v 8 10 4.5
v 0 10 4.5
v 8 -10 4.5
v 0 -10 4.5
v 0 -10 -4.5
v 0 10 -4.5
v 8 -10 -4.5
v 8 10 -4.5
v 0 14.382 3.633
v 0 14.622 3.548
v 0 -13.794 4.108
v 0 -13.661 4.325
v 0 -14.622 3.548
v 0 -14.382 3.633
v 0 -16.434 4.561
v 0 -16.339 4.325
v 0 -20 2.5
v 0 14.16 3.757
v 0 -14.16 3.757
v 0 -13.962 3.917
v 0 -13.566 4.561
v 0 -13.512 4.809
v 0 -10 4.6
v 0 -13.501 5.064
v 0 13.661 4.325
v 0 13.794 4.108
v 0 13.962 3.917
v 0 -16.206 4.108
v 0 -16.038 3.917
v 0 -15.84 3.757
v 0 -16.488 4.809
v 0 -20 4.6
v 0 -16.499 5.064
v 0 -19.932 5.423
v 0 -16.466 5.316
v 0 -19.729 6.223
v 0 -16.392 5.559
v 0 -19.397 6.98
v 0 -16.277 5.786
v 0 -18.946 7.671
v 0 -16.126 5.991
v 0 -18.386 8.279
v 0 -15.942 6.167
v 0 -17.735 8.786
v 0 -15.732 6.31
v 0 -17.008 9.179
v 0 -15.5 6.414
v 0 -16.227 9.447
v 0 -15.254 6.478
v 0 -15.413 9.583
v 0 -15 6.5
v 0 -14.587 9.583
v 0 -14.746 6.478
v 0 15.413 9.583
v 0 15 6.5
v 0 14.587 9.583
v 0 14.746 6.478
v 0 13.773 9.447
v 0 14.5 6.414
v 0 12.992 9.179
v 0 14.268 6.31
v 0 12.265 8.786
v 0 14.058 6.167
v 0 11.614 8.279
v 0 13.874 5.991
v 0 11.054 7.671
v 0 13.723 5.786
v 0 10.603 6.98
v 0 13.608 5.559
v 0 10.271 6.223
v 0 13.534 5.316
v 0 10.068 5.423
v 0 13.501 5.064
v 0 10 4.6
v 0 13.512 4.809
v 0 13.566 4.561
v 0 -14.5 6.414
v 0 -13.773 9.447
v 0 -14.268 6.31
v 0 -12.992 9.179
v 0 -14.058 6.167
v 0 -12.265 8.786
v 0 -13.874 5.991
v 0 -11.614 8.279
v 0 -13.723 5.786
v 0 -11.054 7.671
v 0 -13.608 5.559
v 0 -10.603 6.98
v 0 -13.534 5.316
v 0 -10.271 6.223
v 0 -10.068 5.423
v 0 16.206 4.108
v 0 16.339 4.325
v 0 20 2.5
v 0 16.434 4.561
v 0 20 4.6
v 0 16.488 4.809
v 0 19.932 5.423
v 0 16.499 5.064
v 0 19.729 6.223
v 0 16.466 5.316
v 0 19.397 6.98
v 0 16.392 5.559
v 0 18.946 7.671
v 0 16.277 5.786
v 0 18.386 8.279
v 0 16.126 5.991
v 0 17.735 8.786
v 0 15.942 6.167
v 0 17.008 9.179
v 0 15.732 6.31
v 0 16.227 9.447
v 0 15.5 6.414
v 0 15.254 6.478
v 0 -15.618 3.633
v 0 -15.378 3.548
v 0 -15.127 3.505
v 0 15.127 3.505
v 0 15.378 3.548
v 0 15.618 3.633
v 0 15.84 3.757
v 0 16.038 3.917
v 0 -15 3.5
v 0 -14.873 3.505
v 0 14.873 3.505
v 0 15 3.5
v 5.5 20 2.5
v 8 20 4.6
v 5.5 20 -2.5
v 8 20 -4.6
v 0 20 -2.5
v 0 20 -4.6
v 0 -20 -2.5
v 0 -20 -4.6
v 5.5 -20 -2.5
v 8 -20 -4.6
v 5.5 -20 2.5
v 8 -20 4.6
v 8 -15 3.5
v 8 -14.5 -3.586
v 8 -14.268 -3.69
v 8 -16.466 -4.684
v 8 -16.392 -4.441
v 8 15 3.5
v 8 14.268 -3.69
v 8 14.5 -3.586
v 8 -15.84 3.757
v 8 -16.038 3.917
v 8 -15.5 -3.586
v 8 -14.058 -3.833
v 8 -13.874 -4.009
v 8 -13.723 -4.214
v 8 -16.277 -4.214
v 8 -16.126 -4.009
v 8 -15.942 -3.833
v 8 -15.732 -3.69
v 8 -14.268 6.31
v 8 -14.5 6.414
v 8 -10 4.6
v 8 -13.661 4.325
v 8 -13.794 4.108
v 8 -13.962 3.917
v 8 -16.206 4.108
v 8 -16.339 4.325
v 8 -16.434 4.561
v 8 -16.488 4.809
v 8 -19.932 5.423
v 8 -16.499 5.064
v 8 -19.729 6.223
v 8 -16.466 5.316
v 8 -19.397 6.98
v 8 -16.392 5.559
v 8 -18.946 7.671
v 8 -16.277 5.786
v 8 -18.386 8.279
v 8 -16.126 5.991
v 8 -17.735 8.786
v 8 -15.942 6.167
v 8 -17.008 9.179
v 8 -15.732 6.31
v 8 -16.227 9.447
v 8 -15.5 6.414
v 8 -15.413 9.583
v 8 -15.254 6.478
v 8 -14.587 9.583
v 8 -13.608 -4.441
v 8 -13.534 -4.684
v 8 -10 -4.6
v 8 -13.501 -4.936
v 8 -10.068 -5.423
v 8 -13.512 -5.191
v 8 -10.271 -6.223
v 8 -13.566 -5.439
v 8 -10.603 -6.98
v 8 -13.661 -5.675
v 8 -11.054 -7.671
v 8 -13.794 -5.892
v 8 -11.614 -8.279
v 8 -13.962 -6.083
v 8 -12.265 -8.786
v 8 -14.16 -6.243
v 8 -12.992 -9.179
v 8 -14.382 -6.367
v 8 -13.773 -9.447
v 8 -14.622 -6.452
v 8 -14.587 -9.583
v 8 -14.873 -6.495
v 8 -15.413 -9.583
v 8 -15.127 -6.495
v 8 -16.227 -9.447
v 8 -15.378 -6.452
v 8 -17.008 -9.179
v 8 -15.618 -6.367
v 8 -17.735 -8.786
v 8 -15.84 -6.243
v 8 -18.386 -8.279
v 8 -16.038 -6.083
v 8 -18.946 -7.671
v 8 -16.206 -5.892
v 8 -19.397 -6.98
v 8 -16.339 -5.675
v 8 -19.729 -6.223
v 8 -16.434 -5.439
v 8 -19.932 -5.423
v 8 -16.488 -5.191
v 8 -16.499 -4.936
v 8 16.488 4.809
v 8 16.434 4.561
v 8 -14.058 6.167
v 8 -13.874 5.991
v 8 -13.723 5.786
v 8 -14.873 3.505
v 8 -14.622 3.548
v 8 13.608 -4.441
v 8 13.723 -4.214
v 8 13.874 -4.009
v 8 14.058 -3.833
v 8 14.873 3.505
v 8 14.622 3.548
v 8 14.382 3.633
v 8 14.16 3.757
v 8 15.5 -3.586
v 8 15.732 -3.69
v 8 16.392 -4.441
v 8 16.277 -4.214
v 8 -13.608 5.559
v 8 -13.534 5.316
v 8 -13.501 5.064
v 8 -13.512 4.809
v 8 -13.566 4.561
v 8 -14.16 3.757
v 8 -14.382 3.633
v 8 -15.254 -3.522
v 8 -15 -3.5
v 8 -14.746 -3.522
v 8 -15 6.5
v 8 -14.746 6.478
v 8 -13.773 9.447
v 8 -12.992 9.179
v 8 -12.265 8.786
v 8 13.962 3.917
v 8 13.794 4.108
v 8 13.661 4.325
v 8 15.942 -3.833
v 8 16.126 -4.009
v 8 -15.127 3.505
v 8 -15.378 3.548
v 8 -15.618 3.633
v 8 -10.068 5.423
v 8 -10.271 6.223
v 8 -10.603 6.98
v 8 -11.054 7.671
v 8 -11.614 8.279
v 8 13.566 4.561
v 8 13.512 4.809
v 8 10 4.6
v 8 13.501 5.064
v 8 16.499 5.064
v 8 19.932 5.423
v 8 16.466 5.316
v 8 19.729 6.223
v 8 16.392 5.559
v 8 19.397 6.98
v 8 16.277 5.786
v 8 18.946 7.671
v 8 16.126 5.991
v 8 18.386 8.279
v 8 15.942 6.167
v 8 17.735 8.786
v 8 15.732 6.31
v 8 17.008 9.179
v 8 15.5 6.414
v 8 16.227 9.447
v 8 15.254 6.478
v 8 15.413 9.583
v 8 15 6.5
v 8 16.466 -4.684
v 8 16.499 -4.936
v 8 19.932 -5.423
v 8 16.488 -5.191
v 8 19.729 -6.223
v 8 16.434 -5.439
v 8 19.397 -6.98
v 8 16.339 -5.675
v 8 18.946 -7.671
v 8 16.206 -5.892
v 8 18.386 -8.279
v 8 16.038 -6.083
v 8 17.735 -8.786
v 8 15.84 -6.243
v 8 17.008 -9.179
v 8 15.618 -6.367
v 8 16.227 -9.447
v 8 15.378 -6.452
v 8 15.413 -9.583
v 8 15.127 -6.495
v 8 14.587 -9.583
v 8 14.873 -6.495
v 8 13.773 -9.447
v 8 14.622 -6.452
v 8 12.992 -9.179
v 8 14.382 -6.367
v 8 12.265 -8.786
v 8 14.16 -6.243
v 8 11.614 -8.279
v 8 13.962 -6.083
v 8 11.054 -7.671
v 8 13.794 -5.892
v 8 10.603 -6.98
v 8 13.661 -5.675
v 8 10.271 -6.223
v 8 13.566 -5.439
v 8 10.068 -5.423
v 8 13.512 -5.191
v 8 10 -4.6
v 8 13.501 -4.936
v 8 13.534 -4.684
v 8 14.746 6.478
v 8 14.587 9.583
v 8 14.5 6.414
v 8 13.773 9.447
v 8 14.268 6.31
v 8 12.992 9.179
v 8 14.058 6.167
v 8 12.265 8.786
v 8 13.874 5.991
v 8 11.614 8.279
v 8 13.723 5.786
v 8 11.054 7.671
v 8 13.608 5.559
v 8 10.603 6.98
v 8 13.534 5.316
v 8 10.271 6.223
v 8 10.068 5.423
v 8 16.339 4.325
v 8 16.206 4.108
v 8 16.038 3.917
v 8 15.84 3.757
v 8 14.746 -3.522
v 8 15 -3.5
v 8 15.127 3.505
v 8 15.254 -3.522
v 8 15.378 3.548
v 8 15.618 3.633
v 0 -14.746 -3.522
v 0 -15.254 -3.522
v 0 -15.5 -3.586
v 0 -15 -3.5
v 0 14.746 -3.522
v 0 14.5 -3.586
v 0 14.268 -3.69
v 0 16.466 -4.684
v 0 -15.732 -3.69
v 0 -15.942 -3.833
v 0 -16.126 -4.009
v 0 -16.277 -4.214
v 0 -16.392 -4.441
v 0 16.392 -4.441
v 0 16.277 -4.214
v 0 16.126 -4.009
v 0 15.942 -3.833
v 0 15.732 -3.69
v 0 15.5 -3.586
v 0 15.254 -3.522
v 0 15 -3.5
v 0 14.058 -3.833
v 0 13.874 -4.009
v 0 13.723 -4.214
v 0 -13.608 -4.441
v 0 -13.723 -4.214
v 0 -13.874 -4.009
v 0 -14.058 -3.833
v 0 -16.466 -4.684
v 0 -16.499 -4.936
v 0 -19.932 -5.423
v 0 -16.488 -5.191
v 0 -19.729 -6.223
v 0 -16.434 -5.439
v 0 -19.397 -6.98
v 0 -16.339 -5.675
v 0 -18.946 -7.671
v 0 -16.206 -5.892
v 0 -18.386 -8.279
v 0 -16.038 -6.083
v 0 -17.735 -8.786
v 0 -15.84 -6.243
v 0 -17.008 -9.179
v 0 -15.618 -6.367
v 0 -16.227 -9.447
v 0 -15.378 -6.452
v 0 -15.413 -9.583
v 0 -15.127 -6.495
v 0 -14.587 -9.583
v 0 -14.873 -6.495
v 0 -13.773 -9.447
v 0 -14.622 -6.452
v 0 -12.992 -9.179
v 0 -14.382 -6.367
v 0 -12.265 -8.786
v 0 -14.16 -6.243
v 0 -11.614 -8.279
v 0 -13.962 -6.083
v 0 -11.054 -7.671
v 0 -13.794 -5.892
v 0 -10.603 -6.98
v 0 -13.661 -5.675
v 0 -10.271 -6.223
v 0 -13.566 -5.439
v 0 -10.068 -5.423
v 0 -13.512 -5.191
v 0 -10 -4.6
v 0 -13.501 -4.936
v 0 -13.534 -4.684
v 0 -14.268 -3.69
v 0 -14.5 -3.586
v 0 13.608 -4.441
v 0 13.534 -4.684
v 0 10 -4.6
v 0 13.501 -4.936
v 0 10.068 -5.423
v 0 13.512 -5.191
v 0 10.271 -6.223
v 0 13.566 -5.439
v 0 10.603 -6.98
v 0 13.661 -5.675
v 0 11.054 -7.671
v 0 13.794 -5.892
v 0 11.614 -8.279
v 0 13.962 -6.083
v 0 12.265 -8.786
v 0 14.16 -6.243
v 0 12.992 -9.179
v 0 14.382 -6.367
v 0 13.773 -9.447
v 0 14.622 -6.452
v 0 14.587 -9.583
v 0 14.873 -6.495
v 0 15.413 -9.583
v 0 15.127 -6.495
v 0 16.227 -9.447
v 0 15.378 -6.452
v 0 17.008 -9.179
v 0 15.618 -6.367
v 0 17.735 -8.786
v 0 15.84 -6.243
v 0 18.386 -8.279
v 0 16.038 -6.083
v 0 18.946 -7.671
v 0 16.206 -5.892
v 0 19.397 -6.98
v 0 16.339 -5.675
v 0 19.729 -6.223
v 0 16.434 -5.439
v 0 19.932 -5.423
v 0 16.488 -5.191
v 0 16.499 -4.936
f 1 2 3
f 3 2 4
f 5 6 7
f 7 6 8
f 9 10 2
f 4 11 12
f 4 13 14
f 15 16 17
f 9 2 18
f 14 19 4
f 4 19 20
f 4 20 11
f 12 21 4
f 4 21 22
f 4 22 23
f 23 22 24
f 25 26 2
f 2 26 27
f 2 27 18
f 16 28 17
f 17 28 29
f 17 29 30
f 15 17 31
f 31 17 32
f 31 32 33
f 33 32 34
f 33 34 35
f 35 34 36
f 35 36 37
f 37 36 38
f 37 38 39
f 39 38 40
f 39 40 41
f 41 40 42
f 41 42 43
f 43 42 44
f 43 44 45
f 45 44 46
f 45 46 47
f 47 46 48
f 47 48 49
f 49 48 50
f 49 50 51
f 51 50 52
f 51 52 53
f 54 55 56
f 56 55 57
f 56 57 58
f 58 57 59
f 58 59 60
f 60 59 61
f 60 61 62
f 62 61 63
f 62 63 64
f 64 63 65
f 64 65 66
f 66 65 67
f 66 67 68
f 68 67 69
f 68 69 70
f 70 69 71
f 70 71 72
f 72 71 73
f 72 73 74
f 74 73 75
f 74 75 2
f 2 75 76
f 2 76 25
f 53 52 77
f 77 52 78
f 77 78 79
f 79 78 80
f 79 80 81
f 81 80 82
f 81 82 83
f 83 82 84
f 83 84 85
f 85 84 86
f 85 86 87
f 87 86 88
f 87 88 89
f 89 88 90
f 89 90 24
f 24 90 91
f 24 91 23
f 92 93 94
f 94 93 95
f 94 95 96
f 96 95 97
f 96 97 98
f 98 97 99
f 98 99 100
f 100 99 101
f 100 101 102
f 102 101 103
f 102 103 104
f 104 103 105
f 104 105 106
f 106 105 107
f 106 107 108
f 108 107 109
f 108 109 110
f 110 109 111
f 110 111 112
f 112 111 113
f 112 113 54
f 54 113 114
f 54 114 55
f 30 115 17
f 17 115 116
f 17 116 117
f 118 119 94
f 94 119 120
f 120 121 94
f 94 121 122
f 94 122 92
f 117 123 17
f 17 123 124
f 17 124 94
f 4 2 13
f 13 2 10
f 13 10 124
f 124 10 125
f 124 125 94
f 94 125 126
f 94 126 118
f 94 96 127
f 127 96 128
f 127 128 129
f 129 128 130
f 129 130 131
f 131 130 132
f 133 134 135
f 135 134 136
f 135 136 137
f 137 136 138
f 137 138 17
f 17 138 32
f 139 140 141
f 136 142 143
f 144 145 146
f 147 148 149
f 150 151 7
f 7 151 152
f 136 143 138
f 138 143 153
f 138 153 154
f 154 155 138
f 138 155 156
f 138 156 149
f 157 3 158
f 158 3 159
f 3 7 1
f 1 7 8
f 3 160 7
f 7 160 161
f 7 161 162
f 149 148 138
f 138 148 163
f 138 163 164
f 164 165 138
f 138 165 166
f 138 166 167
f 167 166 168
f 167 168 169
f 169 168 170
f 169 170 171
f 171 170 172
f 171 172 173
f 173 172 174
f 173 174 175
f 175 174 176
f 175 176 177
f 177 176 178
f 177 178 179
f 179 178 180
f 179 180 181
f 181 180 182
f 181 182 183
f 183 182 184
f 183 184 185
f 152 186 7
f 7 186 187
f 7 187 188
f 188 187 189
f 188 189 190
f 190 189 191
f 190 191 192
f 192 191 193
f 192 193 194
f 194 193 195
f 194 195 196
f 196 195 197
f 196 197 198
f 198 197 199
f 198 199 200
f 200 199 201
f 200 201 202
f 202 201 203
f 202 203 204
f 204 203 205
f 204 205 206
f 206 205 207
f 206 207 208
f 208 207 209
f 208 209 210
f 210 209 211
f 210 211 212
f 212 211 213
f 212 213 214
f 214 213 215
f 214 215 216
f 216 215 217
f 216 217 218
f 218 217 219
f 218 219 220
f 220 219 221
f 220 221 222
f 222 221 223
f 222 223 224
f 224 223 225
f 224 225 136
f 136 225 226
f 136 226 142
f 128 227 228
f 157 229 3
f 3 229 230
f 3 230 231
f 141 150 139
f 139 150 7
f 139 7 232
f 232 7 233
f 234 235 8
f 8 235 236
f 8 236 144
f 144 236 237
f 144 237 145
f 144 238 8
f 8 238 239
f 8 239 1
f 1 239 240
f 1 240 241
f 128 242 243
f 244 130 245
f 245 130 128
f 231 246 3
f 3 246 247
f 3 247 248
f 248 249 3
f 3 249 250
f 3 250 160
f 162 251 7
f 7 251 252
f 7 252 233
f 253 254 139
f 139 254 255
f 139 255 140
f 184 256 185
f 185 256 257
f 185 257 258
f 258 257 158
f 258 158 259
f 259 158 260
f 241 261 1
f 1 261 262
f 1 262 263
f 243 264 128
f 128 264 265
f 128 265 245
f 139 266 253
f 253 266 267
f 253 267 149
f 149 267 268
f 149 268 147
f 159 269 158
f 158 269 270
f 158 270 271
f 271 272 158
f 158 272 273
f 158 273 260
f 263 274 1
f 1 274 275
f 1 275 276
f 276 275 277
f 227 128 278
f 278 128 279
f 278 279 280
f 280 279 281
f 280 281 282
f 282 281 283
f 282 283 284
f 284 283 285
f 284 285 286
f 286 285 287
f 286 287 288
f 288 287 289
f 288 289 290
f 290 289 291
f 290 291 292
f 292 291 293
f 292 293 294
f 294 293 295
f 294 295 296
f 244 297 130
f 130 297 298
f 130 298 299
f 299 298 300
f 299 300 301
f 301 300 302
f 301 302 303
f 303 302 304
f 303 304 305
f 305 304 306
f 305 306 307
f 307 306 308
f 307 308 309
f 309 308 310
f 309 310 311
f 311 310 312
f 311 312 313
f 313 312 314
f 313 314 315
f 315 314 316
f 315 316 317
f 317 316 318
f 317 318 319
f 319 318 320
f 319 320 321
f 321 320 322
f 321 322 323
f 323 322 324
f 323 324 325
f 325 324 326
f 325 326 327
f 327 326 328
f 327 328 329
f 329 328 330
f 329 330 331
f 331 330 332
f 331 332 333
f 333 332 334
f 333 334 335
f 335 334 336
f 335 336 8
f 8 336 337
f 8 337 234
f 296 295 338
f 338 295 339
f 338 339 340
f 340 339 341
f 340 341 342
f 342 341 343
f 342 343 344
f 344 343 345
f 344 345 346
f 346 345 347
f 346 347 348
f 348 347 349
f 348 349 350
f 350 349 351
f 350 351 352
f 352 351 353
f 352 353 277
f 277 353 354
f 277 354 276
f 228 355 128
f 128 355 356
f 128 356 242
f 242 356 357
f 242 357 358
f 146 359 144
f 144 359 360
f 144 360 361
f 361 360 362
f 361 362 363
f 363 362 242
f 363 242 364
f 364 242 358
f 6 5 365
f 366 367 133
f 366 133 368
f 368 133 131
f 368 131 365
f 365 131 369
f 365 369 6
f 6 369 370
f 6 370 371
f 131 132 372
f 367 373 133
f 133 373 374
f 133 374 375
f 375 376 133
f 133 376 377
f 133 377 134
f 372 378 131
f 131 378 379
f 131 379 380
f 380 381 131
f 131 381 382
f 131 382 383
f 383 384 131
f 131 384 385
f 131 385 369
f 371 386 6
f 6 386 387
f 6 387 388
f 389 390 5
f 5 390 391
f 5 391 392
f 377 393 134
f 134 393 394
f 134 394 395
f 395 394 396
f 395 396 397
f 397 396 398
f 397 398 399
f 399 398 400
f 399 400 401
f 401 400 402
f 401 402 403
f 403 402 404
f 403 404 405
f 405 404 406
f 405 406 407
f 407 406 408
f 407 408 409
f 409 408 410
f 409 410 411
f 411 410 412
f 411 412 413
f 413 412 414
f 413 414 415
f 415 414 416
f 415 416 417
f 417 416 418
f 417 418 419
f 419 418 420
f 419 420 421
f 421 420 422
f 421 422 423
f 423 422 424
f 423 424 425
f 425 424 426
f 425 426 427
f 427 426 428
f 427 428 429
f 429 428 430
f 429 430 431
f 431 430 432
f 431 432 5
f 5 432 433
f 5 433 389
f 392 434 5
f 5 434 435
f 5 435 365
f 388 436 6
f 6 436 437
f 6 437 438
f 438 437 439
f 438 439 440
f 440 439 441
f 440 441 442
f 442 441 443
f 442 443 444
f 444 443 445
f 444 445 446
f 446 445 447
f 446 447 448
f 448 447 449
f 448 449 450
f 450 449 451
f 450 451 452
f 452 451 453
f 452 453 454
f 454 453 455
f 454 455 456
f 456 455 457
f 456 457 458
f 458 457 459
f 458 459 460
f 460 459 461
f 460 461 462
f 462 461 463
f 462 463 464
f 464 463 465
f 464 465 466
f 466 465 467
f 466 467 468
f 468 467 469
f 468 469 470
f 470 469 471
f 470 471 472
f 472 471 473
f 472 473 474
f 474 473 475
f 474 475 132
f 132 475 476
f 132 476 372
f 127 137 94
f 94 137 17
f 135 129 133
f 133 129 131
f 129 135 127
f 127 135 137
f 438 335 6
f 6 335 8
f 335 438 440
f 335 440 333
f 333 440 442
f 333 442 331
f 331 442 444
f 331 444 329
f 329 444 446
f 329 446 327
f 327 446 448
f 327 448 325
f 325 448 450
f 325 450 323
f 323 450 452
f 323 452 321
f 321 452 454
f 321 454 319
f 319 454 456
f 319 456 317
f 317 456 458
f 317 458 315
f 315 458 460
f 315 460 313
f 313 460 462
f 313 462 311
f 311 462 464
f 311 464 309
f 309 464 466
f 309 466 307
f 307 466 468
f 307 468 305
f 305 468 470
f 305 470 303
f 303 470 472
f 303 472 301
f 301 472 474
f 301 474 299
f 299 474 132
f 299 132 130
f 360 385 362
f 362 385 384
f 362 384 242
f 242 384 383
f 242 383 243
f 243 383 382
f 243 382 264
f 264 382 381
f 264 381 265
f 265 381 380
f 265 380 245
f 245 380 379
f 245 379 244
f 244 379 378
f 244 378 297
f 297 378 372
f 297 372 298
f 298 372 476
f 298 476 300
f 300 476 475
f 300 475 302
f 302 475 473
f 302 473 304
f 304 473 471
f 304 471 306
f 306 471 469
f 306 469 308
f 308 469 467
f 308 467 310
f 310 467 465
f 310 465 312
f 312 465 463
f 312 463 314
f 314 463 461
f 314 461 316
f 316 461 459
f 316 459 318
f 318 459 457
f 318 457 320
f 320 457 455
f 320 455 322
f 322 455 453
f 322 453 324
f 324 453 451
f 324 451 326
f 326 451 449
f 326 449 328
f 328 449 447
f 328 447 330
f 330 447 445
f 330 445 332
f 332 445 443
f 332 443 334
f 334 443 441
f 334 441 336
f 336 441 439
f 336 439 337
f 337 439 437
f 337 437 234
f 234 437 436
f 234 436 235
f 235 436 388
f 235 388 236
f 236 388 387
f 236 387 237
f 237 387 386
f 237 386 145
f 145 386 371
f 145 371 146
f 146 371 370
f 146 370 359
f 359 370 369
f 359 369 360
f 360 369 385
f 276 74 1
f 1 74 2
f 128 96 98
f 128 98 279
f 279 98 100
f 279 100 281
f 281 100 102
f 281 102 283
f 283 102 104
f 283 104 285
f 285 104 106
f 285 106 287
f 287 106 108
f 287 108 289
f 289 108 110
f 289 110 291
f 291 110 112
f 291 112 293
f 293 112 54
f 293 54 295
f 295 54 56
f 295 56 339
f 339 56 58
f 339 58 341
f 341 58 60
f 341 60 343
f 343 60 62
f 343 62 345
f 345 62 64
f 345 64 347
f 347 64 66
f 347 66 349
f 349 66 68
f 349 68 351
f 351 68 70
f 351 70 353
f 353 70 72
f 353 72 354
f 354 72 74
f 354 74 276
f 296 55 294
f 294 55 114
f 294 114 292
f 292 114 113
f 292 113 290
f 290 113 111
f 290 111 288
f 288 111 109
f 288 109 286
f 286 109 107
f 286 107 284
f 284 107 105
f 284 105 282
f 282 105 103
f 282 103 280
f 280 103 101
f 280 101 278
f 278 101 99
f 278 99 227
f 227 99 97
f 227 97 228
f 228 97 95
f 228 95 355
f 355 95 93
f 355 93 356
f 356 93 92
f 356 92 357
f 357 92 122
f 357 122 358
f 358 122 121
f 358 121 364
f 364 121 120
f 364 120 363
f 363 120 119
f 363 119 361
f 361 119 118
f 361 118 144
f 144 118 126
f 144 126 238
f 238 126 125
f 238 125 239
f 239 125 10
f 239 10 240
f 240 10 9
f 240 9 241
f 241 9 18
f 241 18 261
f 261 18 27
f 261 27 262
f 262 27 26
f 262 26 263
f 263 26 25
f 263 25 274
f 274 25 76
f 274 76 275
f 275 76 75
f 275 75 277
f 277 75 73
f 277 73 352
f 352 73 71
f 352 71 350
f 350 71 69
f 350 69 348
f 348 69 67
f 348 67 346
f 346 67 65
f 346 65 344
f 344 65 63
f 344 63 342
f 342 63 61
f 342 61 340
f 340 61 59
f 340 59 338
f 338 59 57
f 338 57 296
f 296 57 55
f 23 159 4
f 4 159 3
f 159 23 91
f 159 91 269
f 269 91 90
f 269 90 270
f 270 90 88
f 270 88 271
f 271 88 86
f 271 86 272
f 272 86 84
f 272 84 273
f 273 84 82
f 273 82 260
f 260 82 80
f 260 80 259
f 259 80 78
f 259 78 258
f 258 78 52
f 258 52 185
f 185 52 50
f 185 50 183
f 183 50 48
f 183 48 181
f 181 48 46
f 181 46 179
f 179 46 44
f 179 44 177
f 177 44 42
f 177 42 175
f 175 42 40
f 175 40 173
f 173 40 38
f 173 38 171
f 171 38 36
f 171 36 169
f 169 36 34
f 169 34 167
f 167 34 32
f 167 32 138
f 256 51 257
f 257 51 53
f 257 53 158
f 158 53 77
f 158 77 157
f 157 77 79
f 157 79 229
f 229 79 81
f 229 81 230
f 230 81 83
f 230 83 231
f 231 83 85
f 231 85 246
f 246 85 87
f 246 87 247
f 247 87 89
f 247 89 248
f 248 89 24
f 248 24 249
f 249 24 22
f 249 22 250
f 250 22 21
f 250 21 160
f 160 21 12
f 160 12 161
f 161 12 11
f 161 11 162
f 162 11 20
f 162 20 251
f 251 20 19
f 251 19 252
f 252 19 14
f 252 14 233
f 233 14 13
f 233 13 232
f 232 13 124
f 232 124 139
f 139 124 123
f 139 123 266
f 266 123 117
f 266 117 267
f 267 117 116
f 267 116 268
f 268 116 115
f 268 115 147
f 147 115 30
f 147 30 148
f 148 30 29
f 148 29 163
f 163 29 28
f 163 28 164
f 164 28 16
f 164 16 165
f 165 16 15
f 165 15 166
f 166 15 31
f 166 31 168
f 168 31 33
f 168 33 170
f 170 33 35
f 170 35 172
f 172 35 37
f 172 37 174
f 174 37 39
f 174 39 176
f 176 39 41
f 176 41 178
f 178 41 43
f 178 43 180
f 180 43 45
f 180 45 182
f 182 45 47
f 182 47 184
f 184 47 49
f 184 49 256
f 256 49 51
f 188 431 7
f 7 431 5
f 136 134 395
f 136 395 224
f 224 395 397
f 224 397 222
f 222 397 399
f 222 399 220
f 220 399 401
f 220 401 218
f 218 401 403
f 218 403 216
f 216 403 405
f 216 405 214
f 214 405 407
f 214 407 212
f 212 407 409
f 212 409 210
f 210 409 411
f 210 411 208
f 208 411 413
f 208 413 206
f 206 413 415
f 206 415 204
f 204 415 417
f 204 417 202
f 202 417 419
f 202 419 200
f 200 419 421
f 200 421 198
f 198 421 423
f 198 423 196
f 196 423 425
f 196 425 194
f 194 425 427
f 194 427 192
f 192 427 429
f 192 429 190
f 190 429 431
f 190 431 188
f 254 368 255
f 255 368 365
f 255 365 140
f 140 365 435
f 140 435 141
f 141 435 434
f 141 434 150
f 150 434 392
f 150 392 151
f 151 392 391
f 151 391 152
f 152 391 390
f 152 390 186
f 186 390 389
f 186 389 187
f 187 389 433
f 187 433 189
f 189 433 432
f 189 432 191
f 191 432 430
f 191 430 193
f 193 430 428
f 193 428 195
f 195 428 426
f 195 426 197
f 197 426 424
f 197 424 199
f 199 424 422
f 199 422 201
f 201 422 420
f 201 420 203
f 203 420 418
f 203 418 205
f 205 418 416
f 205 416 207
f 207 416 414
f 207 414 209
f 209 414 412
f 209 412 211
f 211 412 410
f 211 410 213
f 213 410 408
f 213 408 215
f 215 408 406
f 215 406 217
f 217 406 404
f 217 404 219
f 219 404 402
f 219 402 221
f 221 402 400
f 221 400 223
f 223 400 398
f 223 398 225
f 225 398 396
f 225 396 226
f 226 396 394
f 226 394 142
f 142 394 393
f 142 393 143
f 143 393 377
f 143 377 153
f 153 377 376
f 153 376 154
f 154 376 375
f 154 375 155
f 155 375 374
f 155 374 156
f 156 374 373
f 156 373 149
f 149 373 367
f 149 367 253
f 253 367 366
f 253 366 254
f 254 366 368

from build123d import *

# Parameters (mm, degrees)
ESQUISSE2_W               = 9
ESQUISSE2_H               = 40
BOSS_EXTRU_1_DEPTH        = 8
ESQUISSE3_W               = 5
ESQUISSE3_H               = 40
ENL_V_MAT_EXTRU_1_DEPTH   = 5.5
ESQUISSE4_W               = 8
ESQUISSE4_H               = 10
BOSS_EXTRU_2_DEPTH        = 0.1
BOSS_EXTRU_5_DEPTH        = 8
ESQUISSE14_R              = 1.5
ENL_V_MAT_EXTRU_4_DEPTH   = 24.583044757
SYM_TRIE5_COPY_1_SKETCH_W = 8
SYM_TRIE5_COPY_1_SKETCH_H = 10
SYM_TRIE5_COPY_1_DEPTH    = 0.1
SYM_TRIE5_COPY_2_DEPTH    = 8
SYM_TRIE5_COPY_3_SKETCH_R = 1.5
SYM_TRIE5_COPY_3_DEPTH    = 24.583044757


with BuildPart() as part:
    # Esquisse2 → Boss.-Extru.1 (new body)
    with BuildSketch(Plane(origin=(0, 0, 0), x_dir=(0, 0, -1), z_dir=(1, 0, 0))):
        Rectangle(ESQUISSE2_W, ESQUISSE2_H)
    extrude(amount=BOSS_EXTRU_1_DEPTH)

    # Esquisse3 → Enlèv. mat.-Extru.1 (cut)
    with BuildSketch(Plane.ZY):
        Rectangle(ESQUISSE3_W, ESQUISSE3_H)
    extrude(amount=-ENL_V_MAT_EXTRU_1_DEPTH, mode=Mode.SUBTRACT)

    # Esquisse4 → Boss.-Extru.2 (add)
    with BuildSketch(Plane(origin=(0, 0, -4.5), x_dir=(-1, 0, 0), z_dir=(0, 0, -1))):
        with Locations((-4, 15)):
            Rectangle(ESQUISSE4_W, ESQUISSE4_H)
    boss_extru_2 = extrude(amount=BOSS_EXTRU_2_DEPTH)

    # Esquisse13 → Boss.-Extru.5 (add)
    with BuildSketch(Plane(origin=(0, 0, 0), x_dir=(0, 0, -1), z_dir=(1, 0, 0))):
        with BuildLine():
            Line((4.6, 10), (4.6, 20))
            ThreePointArc((4.6, 20), (9.6, 15), (4.6, 10))
        make_face()
    boss_extru_5 = extrude(amount=BOSS_EXTRU_5_DEPTH)

    # Esquisse14 → Enlèv. mat.-Extru.4 (cut, through all)
    with BuildSketch(Plane.ZY):
        with Locations((-5, 15)):
            Circle(ESQUISSE14_R)
    enl_v_mat_extru_4 = extrude(amount=-ENL_V_MAT_EXTRU_4_DEPTH, mode=Mode.SUBTRACT)

    # Symétrie4: Boss.-Extru.2, Boss.-Extru.5, Enlèv. mat.-Extru.4 across plane
    add(boss_extru_2.mirror(Plane.XY))
    add(boss_extru_5.mirror(Plane.XY))
    add(enl_v_mat_extru_4.mirror(Plane.XY), mode=Mode.SUBTRACT)

    # Symétrie5: Boss.-Extru.2, Boss.-Extru.5, Enlèv. mat.-Extru.4 across plane
    add(boss_extru_2.mirror(Plane.ZX))
    add(boss_extru_5.mirror(Plane.ZX))
    add(enl_v_mat_extru_4.mirror(Plane.ZX), mode=Mode.SUBTRACT)

    # Symétrie5 copy 1 sketch → Symétrie5 copy 1 (add)
    with BuildSketch(Plane(origin=(0, 0, 4.5), x_dir=(-1, 0, 0), z_dir=(0, 0, 1))):
        with Locations((-4, 15)):
            Rectangle(SYM_TRIE5_COPY_1_SKETCH_W, SYM_TRIE5_COPY_1_SKETCH_H)
    extrude(amount=SYM_TRIE5_COPY_1_DEPTH)

    # Symétrie5 copy 2 sketch → Symétrie5 copy 2 (add)
    with BuildSketch(Plane(origin=(0, 0, 0), x_dir=(0, 0, 1), z_dir=(1, 0, 0))):
        with BuildLine():
            Line((4.6, 10), (4.6, 20))
            ThreePointArc((4.6, 20), (9.6, 15), (4.6, 10))
        make_face()
    extrude(amount=SYM_TRIE5_COPY_2_DEPTH)

    # Symétrie5 copy 3 sketch → Symétrie5 copy 3 (cut, through all)
    with BuildSketch(Plane(origin=(0, 0, 0), x_dir=(0, 0, -1), z_dir=(-1, 0, 0))):
        with Locations((-5, 15)):
            Circle(SYM_TRIE5_COPY_3_SKETCH_R)
    extrude(amount=-SYM_TRIE5_COPY_3_DEPTH, mode=Mode.SUBTRACT)


solid = part.part
